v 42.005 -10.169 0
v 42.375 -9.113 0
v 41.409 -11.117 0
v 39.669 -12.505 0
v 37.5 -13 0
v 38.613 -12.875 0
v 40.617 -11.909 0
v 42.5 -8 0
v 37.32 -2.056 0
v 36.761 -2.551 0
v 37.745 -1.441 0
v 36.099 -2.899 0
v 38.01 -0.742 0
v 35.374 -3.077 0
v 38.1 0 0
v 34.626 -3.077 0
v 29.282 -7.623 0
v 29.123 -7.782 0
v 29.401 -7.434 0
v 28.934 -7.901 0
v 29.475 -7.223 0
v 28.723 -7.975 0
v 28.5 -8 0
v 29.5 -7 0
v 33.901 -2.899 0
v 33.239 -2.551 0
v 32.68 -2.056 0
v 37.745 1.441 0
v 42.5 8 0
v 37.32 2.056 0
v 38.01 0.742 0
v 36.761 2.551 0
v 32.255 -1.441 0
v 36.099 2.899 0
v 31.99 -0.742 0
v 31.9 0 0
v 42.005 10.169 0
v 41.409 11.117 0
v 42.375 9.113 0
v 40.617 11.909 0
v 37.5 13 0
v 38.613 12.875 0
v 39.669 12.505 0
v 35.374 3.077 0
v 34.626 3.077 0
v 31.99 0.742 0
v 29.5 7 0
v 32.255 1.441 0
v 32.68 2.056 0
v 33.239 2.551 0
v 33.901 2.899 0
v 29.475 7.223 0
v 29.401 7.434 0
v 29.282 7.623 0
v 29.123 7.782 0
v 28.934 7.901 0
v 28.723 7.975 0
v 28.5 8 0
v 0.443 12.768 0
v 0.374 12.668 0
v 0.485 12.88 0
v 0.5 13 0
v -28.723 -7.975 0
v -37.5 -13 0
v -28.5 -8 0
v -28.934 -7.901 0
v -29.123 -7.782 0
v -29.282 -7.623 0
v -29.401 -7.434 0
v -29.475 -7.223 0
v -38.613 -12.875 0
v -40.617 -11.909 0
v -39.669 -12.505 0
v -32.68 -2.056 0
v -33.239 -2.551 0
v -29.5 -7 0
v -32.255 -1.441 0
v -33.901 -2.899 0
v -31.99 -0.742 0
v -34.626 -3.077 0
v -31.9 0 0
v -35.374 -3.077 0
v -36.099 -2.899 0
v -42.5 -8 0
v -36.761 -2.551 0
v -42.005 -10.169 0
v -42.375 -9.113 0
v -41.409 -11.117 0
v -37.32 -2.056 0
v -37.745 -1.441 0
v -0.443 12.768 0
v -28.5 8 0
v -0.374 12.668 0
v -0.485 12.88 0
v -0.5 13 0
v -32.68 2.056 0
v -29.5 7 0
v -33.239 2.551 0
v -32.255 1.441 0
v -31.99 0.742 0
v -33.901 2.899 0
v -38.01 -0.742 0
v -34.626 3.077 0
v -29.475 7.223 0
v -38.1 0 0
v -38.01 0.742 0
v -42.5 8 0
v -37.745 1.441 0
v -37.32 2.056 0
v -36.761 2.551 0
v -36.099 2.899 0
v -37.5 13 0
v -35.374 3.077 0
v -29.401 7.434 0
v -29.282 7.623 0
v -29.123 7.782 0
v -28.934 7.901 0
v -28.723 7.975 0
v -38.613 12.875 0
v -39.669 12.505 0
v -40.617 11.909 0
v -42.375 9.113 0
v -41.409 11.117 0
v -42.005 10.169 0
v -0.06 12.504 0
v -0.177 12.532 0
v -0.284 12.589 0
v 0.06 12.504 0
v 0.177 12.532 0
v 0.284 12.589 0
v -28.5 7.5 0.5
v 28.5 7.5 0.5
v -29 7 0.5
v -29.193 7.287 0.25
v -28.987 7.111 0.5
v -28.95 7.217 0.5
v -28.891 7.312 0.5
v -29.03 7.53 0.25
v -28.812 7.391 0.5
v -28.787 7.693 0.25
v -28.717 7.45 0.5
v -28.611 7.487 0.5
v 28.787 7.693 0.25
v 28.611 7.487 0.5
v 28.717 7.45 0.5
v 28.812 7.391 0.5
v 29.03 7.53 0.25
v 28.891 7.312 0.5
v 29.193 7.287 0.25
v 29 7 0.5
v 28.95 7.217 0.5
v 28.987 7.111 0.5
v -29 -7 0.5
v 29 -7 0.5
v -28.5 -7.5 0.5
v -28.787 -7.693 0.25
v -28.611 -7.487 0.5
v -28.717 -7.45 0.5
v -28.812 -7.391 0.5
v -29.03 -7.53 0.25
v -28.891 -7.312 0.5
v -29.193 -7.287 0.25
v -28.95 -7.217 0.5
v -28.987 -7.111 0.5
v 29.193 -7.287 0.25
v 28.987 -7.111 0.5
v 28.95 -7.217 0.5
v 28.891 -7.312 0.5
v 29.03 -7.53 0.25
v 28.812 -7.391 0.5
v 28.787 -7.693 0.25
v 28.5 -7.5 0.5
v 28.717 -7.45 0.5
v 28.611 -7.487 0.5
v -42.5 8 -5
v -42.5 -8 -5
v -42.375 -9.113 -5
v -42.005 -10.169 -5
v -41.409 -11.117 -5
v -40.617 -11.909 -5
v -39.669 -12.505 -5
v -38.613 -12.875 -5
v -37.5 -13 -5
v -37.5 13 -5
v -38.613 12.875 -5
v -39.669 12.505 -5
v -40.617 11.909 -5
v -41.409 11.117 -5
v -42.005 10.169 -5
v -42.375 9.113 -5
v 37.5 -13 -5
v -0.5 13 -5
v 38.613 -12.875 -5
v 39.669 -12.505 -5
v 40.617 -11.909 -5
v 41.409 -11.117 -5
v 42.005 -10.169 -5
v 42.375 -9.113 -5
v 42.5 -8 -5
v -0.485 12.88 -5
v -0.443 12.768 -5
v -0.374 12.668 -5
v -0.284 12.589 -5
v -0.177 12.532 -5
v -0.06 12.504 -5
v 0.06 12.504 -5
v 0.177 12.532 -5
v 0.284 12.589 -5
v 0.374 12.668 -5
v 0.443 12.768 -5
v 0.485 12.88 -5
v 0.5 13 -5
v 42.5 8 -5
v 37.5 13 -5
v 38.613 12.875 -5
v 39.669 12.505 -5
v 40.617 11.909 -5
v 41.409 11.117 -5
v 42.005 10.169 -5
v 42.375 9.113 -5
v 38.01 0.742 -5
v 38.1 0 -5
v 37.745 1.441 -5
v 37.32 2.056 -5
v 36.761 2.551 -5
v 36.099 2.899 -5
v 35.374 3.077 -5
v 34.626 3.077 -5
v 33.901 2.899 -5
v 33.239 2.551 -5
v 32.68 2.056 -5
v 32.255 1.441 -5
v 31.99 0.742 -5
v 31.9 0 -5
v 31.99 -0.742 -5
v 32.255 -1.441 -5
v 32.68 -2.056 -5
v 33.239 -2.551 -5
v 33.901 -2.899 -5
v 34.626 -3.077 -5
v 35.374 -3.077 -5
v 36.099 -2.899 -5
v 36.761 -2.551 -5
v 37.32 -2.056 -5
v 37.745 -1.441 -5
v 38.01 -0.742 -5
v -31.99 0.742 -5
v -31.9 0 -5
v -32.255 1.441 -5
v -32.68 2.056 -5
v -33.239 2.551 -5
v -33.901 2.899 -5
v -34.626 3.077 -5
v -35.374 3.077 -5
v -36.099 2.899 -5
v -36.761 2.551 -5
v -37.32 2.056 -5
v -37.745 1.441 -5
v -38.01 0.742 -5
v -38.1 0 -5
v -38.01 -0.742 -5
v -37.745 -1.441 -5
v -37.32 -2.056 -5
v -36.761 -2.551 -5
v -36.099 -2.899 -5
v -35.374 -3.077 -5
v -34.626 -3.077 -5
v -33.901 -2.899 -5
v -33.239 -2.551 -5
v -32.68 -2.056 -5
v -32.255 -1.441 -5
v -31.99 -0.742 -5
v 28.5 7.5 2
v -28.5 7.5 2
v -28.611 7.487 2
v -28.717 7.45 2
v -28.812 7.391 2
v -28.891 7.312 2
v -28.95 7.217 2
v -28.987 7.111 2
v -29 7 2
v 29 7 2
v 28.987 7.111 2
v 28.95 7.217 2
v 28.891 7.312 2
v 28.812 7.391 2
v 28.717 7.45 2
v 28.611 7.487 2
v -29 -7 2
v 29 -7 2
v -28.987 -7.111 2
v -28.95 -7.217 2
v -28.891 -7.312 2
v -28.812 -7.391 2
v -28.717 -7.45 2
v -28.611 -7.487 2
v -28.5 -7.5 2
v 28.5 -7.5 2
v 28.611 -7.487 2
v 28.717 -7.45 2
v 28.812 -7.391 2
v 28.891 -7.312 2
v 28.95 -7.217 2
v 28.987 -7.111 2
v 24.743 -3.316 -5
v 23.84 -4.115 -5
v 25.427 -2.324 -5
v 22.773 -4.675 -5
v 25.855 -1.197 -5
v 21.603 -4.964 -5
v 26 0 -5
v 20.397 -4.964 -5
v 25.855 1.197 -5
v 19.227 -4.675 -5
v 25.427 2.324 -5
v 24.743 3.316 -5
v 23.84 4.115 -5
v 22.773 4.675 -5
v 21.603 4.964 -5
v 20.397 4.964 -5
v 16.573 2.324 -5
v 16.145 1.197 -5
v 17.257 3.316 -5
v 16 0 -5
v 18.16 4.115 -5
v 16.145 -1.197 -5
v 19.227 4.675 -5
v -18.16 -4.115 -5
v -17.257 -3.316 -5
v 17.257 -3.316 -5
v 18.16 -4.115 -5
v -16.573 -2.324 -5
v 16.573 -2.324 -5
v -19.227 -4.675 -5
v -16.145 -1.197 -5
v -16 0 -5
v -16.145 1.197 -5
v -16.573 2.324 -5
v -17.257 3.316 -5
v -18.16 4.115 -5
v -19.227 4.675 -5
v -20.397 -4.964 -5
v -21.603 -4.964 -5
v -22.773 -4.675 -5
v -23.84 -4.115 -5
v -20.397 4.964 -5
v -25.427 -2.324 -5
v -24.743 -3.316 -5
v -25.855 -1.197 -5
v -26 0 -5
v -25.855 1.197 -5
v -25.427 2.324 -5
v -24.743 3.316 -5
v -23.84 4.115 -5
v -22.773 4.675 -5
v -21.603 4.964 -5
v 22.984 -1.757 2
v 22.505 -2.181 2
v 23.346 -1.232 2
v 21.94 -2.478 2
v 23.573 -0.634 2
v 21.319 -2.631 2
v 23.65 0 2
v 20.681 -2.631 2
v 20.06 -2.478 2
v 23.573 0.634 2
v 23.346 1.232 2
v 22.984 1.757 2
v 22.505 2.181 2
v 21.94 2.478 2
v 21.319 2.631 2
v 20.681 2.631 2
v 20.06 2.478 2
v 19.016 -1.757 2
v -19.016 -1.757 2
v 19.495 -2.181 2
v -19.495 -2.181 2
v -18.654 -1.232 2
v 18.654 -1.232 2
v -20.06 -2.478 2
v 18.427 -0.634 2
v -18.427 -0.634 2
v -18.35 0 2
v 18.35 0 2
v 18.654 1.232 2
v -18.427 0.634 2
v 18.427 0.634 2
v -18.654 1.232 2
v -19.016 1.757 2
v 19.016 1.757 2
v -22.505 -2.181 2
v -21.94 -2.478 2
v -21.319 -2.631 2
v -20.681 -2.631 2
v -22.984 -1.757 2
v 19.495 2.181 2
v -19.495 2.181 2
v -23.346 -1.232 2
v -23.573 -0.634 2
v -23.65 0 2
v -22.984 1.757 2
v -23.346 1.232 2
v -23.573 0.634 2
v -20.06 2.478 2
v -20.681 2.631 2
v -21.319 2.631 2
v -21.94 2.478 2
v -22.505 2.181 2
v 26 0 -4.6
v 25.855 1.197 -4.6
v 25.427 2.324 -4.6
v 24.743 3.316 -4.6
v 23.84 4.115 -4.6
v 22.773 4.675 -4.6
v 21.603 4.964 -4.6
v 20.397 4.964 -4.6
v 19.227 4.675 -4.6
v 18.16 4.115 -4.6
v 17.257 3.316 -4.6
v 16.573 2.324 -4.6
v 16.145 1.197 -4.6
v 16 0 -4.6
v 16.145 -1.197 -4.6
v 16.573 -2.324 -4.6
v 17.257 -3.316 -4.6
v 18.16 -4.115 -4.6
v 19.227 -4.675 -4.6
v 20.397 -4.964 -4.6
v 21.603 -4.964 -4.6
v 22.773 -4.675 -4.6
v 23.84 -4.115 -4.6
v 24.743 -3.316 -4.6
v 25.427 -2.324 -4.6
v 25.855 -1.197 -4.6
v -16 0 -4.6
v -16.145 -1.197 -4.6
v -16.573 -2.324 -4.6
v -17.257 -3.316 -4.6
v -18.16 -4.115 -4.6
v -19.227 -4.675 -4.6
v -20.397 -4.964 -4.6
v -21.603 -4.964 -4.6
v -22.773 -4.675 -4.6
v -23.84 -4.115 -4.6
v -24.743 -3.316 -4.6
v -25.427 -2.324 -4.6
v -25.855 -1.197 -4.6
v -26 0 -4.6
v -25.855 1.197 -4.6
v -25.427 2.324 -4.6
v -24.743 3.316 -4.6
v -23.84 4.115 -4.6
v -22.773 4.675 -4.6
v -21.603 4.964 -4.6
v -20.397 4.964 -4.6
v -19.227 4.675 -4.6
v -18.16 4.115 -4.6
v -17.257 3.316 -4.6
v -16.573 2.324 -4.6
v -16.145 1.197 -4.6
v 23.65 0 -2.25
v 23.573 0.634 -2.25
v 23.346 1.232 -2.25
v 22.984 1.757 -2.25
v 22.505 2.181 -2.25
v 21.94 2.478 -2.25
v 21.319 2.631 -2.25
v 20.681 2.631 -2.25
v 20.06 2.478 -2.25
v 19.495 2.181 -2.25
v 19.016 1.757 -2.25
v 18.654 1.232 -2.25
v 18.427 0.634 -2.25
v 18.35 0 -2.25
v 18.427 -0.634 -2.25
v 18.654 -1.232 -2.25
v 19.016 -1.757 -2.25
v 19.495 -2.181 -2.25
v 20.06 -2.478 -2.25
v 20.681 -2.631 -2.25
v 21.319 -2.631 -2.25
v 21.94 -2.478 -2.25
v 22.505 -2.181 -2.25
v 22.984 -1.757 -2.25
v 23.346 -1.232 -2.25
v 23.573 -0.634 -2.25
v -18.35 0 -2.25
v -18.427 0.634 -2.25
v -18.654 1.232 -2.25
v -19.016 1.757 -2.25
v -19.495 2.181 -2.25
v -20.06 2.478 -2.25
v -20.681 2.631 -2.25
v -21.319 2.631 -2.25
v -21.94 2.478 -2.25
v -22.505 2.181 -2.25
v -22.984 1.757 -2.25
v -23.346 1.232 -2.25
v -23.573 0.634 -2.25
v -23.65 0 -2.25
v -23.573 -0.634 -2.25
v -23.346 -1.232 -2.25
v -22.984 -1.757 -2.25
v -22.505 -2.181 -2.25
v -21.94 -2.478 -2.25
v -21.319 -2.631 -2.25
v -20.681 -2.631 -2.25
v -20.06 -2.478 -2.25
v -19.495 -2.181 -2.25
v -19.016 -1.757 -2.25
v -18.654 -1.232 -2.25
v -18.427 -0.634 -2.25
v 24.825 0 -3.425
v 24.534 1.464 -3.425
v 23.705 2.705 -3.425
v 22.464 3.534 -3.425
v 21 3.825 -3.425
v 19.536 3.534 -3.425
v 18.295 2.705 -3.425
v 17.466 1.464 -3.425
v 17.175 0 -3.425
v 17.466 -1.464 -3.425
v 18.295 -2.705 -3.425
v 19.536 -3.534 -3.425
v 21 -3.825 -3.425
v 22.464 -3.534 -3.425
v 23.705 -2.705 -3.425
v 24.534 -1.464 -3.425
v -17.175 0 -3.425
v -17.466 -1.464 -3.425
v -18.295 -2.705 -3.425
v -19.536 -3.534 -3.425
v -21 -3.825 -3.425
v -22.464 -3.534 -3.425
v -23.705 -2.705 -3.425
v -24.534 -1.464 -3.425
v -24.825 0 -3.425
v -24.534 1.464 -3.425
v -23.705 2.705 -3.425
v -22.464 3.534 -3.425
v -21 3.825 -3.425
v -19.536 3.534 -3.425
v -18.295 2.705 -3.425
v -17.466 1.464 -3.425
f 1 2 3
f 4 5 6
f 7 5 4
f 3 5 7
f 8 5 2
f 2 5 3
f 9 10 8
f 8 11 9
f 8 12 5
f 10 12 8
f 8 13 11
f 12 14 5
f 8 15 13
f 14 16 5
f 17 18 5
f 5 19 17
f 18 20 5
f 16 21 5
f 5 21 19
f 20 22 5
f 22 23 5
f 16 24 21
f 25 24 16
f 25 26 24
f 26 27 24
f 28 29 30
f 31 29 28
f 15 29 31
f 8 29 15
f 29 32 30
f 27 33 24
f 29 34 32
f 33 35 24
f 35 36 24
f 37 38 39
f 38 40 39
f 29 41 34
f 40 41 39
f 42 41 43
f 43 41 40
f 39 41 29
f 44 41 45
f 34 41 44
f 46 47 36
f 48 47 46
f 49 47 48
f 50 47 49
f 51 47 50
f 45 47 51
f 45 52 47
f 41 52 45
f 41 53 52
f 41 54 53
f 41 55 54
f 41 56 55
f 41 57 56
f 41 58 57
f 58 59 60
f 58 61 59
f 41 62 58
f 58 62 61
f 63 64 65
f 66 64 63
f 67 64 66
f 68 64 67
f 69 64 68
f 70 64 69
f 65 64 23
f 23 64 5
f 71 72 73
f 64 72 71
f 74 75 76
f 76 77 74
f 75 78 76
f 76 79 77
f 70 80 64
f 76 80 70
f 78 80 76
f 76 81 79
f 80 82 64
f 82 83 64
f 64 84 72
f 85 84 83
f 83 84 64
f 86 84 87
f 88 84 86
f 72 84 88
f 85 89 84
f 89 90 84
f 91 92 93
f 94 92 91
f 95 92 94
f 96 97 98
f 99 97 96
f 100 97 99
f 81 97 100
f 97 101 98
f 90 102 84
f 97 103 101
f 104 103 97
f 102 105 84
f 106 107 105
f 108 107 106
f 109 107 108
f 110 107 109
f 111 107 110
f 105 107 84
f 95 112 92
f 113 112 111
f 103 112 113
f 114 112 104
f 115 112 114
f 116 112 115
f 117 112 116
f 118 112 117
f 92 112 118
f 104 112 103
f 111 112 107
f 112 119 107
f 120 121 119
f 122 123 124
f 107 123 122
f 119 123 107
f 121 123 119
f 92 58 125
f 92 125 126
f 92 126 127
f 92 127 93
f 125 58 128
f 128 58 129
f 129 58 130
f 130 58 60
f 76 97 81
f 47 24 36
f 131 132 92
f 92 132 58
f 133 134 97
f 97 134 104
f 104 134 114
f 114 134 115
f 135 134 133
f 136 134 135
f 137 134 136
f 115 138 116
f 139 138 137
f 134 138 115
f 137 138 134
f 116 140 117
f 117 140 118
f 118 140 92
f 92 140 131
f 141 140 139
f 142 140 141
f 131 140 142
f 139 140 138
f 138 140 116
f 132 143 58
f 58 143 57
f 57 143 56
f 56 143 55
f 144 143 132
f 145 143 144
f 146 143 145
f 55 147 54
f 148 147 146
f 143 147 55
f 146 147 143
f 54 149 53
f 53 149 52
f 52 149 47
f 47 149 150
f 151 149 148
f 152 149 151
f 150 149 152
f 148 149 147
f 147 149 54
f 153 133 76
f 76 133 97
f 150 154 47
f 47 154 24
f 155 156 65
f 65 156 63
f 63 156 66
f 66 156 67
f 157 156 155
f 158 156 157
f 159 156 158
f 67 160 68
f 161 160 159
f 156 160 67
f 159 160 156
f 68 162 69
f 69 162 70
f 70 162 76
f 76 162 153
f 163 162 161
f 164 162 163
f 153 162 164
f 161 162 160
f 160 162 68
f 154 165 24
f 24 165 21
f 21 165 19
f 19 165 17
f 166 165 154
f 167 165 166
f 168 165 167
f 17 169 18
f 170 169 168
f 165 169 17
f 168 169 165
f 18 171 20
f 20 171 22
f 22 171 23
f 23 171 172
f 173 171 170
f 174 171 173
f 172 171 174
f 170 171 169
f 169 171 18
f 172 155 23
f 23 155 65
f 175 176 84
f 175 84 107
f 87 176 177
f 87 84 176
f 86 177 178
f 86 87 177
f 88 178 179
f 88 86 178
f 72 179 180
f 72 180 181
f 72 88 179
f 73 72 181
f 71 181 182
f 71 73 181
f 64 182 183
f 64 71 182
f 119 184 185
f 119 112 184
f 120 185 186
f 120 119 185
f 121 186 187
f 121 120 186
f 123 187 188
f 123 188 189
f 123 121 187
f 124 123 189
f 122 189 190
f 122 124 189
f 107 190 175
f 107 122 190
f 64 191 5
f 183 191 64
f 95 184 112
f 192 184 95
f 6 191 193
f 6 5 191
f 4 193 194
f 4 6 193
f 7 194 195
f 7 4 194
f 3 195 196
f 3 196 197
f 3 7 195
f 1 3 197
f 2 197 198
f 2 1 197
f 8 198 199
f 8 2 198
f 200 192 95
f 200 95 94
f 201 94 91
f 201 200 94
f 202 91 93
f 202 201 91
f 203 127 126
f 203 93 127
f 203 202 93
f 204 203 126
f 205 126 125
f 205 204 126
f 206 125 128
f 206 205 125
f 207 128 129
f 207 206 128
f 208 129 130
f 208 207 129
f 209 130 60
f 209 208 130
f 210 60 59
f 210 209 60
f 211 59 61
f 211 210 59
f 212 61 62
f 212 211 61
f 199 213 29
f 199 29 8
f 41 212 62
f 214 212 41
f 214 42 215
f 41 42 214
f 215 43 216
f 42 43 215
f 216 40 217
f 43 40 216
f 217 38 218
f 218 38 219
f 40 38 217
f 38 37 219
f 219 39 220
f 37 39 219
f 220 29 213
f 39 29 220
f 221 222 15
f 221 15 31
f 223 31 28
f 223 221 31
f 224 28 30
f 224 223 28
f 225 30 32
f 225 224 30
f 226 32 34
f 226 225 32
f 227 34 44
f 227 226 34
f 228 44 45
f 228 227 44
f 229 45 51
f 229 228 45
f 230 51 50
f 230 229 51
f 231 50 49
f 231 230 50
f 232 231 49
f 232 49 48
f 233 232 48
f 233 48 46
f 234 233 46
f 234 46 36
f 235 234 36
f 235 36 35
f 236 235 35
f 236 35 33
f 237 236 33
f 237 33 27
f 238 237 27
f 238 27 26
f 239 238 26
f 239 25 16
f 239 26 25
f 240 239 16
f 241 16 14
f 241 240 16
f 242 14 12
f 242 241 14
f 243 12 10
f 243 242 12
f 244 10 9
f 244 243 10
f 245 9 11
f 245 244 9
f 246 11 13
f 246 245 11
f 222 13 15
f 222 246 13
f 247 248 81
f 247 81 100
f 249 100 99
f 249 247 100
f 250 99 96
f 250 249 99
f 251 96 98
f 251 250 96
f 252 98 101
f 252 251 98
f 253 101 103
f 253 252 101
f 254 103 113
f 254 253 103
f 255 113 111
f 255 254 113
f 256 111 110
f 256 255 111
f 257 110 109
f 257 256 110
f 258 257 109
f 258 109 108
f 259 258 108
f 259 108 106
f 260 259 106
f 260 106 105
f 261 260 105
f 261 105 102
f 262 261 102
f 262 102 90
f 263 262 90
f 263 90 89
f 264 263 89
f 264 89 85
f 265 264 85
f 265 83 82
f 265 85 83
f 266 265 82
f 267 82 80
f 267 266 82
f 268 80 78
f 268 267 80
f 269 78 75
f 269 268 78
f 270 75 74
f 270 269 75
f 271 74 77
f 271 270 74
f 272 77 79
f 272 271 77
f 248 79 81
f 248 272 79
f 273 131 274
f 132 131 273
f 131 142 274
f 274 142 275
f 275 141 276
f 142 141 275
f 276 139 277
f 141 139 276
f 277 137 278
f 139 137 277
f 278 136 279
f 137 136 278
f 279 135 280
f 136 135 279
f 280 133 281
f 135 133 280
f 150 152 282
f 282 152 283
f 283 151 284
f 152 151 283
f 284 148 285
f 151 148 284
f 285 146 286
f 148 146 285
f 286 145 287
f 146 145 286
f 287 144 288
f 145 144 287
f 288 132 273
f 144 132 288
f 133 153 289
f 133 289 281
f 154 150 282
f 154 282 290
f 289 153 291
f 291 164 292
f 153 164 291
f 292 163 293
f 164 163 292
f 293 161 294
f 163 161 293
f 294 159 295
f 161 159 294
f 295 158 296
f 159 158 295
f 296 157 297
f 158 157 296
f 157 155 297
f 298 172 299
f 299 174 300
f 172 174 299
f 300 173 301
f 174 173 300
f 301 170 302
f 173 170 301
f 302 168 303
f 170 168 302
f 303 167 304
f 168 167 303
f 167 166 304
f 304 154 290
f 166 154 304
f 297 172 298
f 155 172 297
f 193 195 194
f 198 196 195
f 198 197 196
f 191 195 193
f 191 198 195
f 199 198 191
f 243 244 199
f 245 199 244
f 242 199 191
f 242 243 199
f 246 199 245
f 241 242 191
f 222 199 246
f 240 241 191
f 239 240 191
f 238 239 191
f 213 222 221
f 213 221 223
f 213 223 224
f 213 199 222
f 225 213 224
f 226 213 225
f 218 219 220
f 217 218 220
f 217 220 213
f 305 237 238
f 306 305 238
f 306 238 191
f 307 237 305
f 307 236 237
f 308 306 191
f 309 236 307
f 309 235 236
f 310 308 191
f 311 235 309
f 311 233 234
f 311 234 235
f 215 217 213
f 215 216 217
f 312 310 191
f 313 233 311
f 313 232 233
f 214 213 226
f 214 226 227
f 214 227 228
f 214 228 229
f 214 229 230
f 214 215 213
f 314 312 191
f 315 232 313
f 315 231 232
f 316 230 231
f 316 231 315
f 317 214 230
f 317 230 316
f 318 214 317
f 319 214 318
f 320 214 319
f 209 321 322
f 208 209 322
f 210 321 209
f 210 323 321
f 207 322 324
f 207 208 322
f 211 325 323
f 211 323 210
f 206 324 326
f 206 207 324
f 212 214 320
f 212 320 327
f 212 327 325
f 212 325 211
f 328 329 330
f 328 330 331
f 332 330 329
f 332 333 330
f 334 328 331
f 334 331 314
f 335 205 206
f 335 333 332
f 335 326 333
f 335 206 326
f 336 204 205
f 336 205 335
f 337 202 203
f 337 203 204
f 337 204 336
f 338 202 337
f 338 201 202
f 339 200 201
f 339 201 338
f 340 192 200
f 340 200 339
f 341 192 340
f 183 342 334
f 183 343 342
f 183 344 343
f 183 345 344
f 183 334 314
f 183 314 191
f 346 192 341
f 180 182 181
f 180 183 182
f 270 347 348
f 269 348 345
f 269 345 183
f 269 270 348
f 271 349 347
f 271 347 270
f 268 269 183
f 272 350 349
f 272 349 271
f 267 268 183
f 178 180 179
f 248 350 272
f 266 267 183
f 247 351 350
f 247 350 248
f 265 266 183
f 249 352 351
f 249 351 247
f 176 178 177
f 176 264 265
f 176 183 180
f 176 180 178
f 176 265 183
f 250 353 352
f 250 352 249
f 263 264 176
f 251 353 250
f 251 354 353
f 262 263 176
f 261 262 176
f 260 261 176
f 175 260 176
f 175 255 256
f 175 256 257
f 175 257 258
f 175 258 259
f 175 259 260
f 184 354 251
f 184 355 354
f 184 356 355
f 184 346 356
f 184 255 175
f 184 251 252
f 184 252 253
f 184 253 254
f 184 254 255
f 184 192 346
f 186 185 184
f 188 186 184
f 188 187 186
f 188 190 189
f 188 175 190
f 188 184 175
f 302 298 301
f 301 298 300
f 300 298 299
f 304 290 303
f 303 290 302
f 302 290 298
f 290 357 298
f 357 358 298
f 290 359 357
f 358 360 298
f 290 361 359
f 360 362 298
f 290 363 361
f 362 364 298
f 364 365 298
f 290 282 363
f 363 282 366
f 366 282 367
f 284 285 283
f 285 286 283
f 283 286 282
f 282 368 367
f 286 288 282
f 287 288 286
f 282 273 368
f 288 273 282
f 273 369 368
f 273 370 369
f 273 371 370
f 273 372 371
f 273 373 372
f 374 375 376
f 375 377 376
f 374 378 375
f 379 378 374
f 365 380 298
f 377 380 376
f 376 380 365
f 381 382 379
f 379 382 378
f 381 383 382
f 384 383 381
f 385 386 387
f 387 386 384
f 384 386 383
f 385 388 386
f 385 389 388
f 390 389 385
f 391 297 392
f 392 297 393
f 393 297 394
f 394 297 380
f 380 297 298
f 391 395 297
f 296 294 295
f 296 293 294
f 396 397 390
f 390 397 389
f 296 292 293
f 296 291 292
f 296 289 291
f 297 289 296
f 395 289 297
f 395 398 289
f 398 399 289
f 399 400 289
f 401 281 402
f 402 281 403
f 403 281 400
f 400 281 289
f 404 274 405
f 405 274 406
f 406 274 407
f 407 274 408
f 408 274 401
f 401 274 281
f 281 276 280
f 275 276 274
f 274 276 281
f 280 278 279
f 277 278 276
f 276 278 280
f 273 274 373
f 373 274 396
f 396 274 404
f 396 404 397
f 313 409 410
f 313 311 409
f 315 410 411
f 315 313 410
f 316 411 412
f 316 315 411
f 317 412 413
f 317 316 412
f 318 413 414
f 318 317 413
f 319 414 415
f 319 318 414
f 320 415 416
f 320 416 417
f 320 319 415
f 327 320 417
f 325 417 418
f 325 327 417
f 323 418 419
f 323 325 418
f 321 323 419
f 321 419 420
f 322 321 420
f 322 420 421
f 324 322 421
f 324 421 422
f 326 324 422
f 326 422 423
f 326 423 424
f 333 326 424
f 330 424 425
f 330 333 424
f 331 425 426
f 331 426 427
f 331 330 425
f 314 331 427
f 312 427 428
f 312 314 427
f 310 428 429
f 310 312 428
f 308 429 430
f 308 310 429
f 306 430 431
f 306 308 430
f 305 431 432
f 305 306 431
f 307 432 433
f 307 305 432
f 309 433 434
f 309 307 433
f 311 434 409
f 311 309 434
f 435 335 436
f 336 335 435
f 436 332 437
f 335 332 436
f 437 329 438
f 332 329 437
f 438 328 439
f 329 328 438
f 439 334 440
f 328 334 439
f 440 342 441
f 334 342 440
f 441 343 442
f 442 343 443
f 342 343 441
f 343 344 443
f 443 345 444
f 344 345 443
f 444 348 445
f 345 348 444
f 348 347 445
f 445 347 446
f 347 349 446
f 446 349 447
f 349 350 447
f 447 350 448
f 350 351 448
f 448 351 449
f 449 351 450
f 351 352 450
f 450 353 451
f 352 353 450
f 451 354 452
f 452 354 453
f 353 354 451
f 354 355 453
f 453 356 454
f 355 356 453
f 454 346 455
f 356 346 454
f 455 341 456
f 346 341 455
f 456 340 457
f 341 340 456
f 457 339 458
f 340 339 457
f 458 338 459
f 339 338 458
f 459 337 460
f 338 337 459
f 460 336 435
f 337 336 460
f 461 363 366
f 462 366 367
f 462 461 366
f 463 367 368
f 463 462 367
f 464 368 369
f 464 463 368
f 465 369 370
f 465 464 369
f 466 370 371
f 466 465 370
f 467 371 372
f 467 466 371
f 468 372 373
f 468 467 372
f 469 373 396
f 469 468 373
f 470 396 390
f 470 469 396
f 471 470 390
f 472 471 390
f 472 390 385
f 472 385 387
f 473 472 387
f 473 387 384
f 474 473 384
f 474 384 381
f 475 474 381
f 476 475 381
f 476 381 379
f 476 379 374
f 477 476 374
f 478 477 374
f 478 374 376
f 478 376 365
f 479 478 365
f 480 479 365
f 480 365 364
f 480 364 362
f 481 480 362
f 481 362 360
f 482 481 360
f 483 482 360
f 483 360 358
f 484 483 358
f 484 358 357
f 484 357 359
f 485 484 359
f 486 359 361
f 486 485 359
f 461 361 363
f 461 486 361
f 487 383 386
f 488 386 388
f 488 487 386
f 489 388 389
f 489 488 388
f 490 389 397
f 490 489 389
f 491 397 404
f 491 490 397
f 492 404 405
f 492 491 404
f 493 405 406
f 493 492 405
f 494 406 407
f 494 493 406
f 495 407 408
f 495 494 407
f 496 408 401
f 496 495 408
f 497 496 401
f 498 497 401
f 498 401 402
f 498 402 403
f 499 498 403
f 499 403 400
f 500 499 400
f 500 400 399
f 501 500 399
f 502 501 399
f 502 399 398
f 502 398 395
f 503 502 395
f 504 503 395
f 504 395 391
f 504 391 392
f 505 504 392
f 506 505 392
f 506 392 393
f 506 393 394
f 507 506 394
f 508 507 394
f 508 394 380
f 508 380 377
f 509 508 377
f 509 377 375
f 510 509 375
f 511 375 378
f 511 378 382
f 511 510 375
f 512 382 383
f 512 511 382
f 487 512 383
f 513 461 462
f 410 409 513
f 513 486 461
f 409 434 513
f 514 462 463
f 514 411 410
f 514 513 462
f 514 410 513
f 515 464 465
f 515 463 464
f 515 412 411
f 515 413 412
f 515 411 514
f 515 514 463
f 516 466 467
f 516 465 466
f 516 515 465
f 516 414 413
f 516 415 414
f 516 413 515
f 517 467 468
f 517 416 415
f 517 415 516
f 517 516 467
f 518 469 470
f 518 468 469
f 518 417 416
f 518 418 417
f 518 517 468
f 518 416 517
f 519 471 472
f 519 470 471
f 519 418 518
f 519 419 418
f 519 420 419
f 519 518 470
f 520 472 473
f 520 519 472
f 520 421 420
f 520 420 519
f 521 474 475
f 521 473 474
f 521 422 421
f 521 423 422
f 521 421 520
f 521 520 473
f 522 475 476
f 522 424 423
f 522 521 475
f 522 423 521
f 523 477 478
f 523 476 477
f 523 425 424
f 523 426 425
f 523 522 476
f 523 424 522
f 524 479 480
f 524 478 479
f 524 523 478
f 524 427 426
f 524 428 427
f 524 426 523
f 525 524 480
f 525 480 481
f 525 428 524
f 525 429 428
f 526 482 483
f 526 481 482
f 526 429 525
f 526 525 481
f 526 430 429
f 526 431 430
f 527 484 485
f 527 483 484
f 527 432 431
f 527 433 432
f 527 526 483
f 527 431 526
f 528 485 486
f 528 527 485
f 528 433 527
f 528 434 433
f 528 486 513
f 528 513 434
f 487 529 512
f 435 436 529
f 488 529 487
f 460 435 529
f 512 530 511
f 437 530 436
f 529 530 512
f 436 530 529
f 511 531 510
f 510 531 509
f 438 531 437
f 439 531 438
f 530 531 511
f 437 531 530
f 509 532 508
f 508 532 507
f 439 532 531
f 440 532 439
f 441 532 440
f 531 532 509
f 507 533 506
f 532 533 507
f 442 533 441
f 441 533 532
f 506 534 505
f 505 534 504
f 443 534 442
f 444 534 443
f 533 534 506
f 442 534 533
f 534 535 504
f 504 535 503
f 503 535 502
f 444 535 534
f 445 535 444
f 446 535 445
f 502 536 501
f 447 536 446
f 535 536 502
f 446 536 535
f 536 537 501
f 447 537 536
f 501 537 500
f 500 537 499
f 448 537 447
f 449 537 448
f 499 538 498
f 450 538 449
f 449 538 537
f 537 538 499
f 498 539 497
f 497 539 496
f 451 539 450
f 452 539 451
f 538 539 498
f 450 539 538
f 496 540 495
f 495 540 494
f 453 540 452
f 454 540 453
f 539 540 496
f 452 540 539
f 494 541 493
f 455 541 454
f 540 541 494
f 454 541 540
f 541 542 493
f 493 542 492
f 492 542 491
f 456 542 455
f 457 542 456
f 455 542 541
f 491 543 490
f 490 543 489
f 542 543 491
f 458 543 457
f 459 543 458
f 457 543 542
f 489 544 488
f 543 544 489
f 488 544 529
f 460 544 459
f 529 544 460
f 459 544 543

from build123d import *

# Parameters (mm, degrees)
SKETCH_R       = 2.65
SKETCH_R_2     = 3.1
PAD_DEPTH      = 2
PAD_DEPTH_BACK = 5
SKETCH001_W    = 85
SKETCH001_H    = 26
POCKET_DEPTH   = 5
FILLET_R       = 5
CHAMFER_SIZE   = 0.5


with BuildPart() as part:
    # Sketch → Pad (new body, two sides)
    with BuildSketch(Plane.XY) as pad_sk:
        with BuildLine():
            Line((-42.5, 13), (-0.5, 13))
            ThreePointArc((-0.5, 13), (0, 12.5), (0.5, 13))
            Line((0.5, 13), (42.5, 13))
            Line((42.5, 13), (42.5, -13))
            Line((42.5, -13), (-42.5, -13))
            Line((-42.5, -13), (-42.5, 13))
        make_face()
        with Locations((-21, 0)):
            Circle(SKETCH_R, mode=Mode.SUBTRACT)
        with Locations((-35, 0)):
            Circle(SKETCH_R_2, mode=Mode.SUBTRACT)
        with Locations((35, 0)):
            Circle(SKETCH_R_2, mode=Mode.SUBTRACT)
        with Locations((21, 0)):
            Circle(SKETCH_R, mode=Mode.SUBTRACT)
    extrude(amount=PAD_DEPTH)
    extrude(pad_sk.sketch, amount=-PAD_DEPTH_BACK)

    # Sketch001 → Pocket (cut)
    with BuildSketch(Plane.XY):
        Rectangle(SKETCH001_W, SKETCH001_H)
        with BuildLine():
            Line((-28.5, 7.5), (28.5, 7.5))
            ThreePointArc((29, 7), (28.853553, 7.353553), (28.5, 7.5))
            Line((29, 7), (29, -7))
            ThreePointArc((28.5, -7.5), (28.853553, -7.353553), (29, -7))
            Line((28.5, -7.5), (-28.5, -7.5))
            ThreePointArc((-29, -7), (-28.853553, -7.353553), (-28.5, -7.5))
            Line((-29, -7), (-29, 7))
            ThreePointArc((-28.5, 7.5), (-28.853553, 7.353553), (-29, 7))
        make_face(mode=Mode.SUBTRACT)
    extrude(amount=POCKET_DEPTH, mode=Mode.SUBTRACT)

    # Sketch002 → Groove (revolve, cut)
    with BuildSketch(Plane.XZ):
        Polygon((-21, 0.4), (-16, -4.6), (-16, -5), (-21, -5), align=None)
    revolve(axis=Axis((-21, 0, 0), (0, 0, 1)), mode=Mode.SUBTRACT)

    # Sketch003 → Groove001 (revolve, cut)
    with BuildSketch(Plane.XZ):
        Polygon((21, 0.4), (26, -4.6), (26, -5), (21, -5), align=None)
    revolve(axis=Axis((21, 0, 0), (0, 0, 1)), mode=Mode.SUBTRACT)

    # Fillet
    fillet_edges = [part.edges().sort_by_distance(p)[0] for p in [
        (42.5, 13, -2.5),
        (42.5, -13, -2.5),
        (-42.5, 13, -2.5),
        (-42.5, -13, -2.5),
    ]]
    fillet(fillet_edges, radius=FILLET_R)

    # Chamfer
    chamfer_edges = [part.edges().sort_by_distance(p)[0] for p in [
        (0, 7.5, 0),
    ]]
    chamfer(chamfer_edges, length=CHAMFER_SIZE)


solid = part.part
